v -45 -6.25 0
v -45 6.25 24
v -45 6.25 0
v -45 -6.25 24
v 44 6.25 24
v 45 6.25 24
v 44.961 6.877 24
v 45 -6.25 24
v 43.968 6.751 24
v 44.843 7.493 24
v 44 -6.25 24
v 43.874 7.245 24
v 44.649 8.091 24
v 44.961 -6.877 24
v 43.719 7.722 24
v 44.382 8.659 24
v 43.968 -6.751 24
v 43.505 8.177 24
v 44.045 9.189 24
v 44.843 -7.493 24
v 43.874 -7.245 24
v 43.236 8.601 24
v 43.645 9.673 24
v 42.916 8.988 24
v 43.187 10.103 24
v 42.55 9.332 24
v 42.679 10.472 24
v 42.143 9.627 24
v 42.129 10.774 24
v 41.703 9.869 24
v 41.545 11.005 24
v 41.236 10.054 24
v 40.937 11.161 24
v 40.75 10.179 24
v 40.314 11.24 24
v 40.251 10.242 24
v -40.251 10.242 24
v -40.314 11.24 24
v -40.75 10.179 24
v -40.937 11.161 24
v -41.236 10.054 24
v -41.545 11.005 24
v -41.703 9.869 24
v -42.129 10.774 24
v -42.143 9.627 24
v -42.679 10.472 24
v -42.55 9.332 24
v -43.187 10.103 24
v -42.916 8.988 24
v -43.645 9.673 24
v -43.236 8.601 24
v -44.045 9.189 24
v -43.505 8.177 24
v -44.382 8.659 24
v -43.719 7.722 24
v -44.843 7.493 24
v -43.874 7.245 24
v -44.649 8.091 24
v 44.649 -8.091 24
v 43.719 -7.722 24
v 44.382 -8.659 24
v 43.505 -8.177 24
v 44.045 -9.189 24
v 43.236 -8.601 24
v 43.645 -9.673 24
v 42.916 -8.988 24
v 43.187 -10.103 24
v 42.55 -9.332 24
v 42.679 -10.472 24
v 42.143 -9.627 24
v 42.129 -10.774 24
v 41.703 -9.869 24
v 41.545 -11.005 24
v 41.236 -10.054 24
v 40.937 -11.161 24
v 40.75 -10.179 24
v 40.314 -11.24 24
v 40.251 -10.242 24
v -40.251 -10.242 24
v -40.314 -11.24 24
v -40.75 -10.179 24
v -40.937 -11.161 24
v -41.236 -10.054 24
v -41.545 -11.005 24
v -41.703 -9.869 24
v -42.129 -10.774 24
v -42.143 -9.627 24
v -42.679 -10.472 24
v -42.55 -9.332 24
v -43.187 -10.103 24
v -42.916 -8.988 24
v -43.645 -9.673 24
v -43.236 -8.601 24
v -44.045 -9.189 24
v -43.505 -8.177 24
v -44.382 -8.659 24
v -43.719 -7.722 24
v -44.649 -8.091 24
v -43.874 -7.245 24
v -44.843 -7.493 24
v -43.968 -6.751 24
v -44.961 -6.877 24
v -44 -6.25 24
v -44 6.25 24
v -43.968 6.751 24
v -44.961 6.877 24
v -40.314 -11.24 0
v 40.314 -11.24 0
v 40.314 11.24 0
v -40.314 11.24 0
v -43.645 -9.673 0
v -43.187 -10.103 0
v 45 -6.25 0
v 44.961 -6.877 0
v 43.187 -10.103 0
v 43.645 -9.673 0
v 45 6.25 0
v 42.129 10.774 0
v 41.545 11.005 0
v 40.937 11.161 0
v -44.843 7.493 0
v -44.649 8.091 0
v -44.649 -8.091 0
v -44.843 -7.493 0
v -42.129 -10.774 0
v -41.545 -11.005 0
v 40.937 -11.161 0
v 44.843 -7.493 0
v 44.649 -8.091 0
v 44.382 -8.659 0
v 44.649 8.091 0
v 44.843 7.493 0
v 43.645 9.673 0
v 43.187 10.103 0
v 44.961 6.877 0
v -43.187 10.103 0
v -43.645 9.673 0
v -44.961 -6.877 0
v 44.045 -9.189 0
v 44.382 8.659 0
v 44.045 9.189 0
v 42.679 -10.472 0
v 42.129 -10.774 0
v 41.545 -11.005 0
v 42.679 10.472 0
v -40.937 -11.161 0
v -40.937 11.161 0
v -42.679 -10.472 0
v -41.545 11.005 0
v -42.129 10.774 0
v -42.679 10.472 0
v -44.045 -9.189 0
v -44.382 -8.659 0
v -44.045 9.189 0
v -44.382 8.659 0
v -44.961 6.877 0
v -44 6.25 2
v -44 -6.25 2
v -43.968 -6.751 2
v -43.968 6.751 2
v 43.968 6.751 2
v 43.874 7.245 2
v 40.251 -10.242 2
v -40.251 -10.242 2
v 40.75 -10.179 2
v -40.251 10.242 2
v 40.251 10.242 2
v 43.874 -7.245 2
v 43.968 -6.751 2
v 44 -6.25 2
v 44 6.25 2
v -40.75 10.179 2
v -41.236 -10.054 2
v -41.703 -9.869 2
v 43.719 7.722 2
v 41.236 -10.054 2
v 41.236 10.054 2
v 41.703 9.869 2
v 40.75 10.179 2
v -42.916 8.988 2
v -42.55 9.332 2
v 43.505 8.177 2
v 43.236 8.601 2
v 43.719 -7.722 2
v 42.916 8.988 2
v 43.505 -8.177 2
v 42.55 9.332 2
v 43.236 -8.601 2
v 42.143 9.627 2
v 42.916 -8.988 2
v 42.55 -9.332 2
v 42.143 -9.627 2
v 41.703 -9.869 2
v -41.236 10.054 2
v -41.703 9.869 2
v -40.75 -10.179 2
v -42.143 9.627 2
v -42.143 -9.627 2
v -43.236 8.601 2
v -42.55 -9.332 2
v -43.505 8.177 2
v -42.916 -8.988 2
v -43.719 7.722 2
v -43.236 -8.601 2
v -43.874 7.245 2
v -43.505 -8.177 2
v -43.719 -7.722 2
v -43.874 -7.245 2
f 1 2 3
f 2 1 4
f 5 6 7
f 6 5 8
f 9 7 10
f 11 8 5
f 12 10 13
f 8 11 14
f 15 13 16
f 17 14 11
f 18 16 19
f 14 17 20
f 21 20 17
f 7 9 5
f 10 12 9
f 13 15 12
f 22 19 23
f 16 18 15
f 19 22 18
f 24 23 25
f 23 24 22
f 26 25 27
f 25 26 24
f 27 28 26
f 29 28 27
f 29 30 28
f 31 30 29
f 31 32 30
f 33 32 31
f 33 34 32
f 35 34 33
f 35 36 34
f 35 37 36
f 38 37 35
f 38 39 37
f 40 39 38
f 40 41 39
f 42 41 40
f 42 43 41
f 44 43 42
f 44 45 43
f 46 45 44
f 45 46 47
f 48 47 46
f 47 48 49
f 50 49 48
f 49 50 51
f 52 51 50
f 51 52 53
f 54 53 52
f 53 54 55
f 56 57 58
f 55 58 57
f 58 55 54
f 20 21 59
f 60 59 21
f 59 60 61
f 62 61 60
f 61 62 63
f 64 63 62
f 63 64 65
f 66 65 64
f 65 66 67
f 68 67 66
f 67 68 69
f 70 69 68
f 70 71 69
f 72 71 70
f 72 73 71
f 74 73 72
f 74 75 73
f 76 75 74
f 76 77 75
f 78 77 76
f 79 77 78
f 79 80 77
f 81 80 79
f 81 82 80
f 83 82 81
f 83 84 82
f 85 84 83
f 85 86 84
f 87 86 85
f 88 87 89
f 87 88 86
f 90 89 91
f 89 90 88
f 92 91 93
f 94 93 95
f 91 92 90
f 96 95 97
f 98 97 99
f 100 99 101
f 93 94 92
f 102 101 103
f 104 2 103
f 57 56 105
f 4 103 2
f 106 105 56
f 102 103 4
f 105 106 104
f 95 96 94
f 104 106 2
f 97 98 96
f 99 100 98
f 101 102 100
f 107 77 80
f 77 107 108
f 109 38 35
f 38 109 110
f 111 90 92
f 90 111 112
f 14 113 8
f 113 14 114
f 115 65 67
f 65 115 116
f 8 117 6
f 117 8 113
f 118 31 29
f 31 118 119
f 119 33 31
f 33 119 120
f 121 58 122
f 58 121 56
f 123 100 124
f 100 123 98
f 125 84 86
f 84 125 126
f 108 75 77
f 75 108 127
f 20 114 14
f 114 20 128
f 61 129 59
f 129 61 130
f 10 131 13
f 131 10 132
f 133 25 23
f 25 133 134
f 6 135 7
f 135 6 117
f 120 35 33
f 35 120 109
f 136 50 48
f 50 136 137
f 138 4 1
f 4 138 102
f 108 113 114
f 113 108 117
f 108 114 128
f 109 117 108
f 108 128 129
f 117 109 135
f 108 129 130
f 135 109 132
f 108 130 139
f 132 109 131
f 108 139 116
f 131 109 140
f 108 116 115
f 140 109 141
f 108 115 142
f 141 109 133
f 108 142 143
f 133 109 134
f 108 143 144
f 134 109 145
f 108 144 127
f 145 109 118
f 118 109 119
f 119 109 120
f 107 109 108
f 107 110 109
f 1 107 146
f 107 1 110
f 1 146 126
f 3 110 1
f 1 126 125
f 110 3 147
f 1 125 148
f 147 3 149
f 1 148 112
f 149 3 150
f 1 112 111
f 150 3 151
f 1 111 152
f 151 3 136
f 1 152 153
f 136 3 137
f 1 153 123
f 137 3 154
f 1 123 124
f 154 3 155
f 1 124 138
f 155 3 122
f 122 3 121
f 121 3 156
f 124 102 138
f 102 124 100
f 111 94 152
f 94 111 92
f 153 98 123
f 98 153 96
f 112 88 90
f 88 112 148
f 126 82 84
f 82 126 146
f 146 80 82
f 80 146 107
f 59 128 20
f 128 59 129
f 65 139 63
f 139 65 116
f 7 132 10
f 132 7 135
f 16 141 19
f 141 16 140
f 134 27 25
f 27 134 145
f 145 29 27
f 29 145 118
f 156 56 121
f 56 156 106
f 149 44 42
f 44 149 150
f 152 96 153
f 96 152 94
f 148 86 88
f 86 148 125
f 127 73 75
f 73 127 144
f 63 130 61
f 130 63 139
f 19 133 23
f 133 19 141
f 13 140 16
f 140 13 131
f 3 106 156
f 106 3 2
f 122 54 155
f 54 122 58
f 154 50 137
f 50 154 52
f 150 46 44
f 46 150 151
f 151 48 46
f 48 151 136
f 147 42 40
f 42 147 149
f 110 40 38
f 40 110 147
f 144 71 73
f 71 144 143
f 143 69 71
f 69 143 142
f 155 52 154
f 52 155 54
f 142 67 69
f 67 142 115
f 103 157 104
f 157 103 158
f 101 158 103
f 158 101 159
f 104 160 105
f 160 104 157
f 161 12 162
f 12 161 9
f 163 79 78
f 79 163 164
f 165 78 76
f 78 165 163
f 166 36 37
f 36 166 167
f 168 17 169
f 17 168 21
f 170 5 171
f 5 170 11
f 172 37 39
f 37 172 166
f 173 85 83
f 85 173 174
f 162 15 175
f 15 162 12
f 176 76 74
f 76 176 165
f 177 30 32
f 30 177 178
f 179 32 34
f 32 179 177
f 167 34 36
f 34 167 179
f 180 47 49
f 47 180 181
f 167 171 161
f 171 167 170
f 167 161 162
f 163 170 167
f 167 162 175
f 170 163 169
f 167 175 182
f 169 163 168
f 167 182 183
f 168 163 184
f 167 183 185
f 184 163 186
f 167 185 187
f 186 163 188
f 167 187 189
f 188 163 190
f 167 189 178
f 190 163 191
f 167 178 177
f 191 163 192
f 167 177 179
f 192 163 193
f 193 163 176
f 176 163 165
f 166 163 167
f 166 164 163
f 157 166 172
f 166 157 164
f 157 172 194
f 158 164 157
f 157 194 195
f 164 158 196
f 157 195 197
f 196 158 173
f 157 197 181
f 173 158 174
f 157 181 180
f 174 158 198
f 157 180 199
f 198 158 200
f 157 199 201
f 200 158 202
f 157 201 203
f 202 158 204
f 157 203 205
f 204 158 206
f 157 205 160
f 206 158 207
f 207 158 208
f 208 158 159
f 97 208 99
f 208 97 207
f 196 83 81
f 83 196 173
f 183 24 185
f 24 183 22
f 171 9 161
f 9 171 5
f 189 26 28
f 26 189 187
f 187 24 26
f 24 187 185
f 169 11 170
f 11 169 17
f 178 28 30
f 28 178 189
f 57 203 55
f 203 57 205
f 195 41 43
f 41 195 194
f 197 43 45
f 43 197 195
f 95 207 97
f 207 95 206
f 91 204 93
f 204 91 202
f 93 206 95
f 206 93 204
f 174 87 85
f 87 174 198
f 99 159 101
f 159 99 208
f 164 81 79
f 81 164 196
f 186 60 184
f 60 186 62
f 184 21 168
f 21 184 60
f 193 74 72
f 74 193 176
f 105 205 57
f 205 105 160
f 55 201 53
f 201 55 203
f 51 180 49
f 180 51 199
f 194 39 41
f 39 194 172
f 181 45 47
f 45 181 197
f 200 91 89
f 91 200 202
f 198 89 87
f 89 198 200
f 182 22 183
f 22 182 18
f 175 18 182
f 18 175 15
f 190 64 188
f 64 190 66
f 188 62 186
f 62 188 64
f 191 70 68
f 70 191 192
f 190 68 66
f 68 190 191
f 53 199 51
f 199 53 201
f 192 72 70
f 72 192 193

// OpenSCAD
$fn = 50;


difference() {
	union() {
		hull() {
			translate(v = [-40.0000000000, 6.2500000000, 0]) {
				cylinder(h = 24, r = 5);
			}
			translate(v = [40.0000000000, 6.2500000000, 0]) {
				cylinder(h = 24, r = 5);
			}
			translate(v = [-40.0000000000, -6.2500000000, 0]) {
				cylinder(h = 24, r = 5);
			}
			translate(v = [40.0000000000, -6.2500000000, 0]) {
				cylinder(h = 24, r = 5);
			}
		}
	}
	union() {
		translate(v = [0, 0, 2]) {
			#hull() {
				translate(v = [-40.0000000000, 6.2500000000, 0]) {
					cylinder(h = 22, r = 4);
				}
				translate(v = [40.0000000000, 6.2500000000, 0]) {
					cylinder(h = 22, r = 4);
				}
				translate(v = [-40.0000000000, -6.2500000000, 0]) {
					cylinder(h = 22, r = 4);
				}
				translate(v = [40.0000000000, -6.2500000000, 0]) {
					cylinder(h = 22, r = 4);
				}
			}
		}
	}
}
